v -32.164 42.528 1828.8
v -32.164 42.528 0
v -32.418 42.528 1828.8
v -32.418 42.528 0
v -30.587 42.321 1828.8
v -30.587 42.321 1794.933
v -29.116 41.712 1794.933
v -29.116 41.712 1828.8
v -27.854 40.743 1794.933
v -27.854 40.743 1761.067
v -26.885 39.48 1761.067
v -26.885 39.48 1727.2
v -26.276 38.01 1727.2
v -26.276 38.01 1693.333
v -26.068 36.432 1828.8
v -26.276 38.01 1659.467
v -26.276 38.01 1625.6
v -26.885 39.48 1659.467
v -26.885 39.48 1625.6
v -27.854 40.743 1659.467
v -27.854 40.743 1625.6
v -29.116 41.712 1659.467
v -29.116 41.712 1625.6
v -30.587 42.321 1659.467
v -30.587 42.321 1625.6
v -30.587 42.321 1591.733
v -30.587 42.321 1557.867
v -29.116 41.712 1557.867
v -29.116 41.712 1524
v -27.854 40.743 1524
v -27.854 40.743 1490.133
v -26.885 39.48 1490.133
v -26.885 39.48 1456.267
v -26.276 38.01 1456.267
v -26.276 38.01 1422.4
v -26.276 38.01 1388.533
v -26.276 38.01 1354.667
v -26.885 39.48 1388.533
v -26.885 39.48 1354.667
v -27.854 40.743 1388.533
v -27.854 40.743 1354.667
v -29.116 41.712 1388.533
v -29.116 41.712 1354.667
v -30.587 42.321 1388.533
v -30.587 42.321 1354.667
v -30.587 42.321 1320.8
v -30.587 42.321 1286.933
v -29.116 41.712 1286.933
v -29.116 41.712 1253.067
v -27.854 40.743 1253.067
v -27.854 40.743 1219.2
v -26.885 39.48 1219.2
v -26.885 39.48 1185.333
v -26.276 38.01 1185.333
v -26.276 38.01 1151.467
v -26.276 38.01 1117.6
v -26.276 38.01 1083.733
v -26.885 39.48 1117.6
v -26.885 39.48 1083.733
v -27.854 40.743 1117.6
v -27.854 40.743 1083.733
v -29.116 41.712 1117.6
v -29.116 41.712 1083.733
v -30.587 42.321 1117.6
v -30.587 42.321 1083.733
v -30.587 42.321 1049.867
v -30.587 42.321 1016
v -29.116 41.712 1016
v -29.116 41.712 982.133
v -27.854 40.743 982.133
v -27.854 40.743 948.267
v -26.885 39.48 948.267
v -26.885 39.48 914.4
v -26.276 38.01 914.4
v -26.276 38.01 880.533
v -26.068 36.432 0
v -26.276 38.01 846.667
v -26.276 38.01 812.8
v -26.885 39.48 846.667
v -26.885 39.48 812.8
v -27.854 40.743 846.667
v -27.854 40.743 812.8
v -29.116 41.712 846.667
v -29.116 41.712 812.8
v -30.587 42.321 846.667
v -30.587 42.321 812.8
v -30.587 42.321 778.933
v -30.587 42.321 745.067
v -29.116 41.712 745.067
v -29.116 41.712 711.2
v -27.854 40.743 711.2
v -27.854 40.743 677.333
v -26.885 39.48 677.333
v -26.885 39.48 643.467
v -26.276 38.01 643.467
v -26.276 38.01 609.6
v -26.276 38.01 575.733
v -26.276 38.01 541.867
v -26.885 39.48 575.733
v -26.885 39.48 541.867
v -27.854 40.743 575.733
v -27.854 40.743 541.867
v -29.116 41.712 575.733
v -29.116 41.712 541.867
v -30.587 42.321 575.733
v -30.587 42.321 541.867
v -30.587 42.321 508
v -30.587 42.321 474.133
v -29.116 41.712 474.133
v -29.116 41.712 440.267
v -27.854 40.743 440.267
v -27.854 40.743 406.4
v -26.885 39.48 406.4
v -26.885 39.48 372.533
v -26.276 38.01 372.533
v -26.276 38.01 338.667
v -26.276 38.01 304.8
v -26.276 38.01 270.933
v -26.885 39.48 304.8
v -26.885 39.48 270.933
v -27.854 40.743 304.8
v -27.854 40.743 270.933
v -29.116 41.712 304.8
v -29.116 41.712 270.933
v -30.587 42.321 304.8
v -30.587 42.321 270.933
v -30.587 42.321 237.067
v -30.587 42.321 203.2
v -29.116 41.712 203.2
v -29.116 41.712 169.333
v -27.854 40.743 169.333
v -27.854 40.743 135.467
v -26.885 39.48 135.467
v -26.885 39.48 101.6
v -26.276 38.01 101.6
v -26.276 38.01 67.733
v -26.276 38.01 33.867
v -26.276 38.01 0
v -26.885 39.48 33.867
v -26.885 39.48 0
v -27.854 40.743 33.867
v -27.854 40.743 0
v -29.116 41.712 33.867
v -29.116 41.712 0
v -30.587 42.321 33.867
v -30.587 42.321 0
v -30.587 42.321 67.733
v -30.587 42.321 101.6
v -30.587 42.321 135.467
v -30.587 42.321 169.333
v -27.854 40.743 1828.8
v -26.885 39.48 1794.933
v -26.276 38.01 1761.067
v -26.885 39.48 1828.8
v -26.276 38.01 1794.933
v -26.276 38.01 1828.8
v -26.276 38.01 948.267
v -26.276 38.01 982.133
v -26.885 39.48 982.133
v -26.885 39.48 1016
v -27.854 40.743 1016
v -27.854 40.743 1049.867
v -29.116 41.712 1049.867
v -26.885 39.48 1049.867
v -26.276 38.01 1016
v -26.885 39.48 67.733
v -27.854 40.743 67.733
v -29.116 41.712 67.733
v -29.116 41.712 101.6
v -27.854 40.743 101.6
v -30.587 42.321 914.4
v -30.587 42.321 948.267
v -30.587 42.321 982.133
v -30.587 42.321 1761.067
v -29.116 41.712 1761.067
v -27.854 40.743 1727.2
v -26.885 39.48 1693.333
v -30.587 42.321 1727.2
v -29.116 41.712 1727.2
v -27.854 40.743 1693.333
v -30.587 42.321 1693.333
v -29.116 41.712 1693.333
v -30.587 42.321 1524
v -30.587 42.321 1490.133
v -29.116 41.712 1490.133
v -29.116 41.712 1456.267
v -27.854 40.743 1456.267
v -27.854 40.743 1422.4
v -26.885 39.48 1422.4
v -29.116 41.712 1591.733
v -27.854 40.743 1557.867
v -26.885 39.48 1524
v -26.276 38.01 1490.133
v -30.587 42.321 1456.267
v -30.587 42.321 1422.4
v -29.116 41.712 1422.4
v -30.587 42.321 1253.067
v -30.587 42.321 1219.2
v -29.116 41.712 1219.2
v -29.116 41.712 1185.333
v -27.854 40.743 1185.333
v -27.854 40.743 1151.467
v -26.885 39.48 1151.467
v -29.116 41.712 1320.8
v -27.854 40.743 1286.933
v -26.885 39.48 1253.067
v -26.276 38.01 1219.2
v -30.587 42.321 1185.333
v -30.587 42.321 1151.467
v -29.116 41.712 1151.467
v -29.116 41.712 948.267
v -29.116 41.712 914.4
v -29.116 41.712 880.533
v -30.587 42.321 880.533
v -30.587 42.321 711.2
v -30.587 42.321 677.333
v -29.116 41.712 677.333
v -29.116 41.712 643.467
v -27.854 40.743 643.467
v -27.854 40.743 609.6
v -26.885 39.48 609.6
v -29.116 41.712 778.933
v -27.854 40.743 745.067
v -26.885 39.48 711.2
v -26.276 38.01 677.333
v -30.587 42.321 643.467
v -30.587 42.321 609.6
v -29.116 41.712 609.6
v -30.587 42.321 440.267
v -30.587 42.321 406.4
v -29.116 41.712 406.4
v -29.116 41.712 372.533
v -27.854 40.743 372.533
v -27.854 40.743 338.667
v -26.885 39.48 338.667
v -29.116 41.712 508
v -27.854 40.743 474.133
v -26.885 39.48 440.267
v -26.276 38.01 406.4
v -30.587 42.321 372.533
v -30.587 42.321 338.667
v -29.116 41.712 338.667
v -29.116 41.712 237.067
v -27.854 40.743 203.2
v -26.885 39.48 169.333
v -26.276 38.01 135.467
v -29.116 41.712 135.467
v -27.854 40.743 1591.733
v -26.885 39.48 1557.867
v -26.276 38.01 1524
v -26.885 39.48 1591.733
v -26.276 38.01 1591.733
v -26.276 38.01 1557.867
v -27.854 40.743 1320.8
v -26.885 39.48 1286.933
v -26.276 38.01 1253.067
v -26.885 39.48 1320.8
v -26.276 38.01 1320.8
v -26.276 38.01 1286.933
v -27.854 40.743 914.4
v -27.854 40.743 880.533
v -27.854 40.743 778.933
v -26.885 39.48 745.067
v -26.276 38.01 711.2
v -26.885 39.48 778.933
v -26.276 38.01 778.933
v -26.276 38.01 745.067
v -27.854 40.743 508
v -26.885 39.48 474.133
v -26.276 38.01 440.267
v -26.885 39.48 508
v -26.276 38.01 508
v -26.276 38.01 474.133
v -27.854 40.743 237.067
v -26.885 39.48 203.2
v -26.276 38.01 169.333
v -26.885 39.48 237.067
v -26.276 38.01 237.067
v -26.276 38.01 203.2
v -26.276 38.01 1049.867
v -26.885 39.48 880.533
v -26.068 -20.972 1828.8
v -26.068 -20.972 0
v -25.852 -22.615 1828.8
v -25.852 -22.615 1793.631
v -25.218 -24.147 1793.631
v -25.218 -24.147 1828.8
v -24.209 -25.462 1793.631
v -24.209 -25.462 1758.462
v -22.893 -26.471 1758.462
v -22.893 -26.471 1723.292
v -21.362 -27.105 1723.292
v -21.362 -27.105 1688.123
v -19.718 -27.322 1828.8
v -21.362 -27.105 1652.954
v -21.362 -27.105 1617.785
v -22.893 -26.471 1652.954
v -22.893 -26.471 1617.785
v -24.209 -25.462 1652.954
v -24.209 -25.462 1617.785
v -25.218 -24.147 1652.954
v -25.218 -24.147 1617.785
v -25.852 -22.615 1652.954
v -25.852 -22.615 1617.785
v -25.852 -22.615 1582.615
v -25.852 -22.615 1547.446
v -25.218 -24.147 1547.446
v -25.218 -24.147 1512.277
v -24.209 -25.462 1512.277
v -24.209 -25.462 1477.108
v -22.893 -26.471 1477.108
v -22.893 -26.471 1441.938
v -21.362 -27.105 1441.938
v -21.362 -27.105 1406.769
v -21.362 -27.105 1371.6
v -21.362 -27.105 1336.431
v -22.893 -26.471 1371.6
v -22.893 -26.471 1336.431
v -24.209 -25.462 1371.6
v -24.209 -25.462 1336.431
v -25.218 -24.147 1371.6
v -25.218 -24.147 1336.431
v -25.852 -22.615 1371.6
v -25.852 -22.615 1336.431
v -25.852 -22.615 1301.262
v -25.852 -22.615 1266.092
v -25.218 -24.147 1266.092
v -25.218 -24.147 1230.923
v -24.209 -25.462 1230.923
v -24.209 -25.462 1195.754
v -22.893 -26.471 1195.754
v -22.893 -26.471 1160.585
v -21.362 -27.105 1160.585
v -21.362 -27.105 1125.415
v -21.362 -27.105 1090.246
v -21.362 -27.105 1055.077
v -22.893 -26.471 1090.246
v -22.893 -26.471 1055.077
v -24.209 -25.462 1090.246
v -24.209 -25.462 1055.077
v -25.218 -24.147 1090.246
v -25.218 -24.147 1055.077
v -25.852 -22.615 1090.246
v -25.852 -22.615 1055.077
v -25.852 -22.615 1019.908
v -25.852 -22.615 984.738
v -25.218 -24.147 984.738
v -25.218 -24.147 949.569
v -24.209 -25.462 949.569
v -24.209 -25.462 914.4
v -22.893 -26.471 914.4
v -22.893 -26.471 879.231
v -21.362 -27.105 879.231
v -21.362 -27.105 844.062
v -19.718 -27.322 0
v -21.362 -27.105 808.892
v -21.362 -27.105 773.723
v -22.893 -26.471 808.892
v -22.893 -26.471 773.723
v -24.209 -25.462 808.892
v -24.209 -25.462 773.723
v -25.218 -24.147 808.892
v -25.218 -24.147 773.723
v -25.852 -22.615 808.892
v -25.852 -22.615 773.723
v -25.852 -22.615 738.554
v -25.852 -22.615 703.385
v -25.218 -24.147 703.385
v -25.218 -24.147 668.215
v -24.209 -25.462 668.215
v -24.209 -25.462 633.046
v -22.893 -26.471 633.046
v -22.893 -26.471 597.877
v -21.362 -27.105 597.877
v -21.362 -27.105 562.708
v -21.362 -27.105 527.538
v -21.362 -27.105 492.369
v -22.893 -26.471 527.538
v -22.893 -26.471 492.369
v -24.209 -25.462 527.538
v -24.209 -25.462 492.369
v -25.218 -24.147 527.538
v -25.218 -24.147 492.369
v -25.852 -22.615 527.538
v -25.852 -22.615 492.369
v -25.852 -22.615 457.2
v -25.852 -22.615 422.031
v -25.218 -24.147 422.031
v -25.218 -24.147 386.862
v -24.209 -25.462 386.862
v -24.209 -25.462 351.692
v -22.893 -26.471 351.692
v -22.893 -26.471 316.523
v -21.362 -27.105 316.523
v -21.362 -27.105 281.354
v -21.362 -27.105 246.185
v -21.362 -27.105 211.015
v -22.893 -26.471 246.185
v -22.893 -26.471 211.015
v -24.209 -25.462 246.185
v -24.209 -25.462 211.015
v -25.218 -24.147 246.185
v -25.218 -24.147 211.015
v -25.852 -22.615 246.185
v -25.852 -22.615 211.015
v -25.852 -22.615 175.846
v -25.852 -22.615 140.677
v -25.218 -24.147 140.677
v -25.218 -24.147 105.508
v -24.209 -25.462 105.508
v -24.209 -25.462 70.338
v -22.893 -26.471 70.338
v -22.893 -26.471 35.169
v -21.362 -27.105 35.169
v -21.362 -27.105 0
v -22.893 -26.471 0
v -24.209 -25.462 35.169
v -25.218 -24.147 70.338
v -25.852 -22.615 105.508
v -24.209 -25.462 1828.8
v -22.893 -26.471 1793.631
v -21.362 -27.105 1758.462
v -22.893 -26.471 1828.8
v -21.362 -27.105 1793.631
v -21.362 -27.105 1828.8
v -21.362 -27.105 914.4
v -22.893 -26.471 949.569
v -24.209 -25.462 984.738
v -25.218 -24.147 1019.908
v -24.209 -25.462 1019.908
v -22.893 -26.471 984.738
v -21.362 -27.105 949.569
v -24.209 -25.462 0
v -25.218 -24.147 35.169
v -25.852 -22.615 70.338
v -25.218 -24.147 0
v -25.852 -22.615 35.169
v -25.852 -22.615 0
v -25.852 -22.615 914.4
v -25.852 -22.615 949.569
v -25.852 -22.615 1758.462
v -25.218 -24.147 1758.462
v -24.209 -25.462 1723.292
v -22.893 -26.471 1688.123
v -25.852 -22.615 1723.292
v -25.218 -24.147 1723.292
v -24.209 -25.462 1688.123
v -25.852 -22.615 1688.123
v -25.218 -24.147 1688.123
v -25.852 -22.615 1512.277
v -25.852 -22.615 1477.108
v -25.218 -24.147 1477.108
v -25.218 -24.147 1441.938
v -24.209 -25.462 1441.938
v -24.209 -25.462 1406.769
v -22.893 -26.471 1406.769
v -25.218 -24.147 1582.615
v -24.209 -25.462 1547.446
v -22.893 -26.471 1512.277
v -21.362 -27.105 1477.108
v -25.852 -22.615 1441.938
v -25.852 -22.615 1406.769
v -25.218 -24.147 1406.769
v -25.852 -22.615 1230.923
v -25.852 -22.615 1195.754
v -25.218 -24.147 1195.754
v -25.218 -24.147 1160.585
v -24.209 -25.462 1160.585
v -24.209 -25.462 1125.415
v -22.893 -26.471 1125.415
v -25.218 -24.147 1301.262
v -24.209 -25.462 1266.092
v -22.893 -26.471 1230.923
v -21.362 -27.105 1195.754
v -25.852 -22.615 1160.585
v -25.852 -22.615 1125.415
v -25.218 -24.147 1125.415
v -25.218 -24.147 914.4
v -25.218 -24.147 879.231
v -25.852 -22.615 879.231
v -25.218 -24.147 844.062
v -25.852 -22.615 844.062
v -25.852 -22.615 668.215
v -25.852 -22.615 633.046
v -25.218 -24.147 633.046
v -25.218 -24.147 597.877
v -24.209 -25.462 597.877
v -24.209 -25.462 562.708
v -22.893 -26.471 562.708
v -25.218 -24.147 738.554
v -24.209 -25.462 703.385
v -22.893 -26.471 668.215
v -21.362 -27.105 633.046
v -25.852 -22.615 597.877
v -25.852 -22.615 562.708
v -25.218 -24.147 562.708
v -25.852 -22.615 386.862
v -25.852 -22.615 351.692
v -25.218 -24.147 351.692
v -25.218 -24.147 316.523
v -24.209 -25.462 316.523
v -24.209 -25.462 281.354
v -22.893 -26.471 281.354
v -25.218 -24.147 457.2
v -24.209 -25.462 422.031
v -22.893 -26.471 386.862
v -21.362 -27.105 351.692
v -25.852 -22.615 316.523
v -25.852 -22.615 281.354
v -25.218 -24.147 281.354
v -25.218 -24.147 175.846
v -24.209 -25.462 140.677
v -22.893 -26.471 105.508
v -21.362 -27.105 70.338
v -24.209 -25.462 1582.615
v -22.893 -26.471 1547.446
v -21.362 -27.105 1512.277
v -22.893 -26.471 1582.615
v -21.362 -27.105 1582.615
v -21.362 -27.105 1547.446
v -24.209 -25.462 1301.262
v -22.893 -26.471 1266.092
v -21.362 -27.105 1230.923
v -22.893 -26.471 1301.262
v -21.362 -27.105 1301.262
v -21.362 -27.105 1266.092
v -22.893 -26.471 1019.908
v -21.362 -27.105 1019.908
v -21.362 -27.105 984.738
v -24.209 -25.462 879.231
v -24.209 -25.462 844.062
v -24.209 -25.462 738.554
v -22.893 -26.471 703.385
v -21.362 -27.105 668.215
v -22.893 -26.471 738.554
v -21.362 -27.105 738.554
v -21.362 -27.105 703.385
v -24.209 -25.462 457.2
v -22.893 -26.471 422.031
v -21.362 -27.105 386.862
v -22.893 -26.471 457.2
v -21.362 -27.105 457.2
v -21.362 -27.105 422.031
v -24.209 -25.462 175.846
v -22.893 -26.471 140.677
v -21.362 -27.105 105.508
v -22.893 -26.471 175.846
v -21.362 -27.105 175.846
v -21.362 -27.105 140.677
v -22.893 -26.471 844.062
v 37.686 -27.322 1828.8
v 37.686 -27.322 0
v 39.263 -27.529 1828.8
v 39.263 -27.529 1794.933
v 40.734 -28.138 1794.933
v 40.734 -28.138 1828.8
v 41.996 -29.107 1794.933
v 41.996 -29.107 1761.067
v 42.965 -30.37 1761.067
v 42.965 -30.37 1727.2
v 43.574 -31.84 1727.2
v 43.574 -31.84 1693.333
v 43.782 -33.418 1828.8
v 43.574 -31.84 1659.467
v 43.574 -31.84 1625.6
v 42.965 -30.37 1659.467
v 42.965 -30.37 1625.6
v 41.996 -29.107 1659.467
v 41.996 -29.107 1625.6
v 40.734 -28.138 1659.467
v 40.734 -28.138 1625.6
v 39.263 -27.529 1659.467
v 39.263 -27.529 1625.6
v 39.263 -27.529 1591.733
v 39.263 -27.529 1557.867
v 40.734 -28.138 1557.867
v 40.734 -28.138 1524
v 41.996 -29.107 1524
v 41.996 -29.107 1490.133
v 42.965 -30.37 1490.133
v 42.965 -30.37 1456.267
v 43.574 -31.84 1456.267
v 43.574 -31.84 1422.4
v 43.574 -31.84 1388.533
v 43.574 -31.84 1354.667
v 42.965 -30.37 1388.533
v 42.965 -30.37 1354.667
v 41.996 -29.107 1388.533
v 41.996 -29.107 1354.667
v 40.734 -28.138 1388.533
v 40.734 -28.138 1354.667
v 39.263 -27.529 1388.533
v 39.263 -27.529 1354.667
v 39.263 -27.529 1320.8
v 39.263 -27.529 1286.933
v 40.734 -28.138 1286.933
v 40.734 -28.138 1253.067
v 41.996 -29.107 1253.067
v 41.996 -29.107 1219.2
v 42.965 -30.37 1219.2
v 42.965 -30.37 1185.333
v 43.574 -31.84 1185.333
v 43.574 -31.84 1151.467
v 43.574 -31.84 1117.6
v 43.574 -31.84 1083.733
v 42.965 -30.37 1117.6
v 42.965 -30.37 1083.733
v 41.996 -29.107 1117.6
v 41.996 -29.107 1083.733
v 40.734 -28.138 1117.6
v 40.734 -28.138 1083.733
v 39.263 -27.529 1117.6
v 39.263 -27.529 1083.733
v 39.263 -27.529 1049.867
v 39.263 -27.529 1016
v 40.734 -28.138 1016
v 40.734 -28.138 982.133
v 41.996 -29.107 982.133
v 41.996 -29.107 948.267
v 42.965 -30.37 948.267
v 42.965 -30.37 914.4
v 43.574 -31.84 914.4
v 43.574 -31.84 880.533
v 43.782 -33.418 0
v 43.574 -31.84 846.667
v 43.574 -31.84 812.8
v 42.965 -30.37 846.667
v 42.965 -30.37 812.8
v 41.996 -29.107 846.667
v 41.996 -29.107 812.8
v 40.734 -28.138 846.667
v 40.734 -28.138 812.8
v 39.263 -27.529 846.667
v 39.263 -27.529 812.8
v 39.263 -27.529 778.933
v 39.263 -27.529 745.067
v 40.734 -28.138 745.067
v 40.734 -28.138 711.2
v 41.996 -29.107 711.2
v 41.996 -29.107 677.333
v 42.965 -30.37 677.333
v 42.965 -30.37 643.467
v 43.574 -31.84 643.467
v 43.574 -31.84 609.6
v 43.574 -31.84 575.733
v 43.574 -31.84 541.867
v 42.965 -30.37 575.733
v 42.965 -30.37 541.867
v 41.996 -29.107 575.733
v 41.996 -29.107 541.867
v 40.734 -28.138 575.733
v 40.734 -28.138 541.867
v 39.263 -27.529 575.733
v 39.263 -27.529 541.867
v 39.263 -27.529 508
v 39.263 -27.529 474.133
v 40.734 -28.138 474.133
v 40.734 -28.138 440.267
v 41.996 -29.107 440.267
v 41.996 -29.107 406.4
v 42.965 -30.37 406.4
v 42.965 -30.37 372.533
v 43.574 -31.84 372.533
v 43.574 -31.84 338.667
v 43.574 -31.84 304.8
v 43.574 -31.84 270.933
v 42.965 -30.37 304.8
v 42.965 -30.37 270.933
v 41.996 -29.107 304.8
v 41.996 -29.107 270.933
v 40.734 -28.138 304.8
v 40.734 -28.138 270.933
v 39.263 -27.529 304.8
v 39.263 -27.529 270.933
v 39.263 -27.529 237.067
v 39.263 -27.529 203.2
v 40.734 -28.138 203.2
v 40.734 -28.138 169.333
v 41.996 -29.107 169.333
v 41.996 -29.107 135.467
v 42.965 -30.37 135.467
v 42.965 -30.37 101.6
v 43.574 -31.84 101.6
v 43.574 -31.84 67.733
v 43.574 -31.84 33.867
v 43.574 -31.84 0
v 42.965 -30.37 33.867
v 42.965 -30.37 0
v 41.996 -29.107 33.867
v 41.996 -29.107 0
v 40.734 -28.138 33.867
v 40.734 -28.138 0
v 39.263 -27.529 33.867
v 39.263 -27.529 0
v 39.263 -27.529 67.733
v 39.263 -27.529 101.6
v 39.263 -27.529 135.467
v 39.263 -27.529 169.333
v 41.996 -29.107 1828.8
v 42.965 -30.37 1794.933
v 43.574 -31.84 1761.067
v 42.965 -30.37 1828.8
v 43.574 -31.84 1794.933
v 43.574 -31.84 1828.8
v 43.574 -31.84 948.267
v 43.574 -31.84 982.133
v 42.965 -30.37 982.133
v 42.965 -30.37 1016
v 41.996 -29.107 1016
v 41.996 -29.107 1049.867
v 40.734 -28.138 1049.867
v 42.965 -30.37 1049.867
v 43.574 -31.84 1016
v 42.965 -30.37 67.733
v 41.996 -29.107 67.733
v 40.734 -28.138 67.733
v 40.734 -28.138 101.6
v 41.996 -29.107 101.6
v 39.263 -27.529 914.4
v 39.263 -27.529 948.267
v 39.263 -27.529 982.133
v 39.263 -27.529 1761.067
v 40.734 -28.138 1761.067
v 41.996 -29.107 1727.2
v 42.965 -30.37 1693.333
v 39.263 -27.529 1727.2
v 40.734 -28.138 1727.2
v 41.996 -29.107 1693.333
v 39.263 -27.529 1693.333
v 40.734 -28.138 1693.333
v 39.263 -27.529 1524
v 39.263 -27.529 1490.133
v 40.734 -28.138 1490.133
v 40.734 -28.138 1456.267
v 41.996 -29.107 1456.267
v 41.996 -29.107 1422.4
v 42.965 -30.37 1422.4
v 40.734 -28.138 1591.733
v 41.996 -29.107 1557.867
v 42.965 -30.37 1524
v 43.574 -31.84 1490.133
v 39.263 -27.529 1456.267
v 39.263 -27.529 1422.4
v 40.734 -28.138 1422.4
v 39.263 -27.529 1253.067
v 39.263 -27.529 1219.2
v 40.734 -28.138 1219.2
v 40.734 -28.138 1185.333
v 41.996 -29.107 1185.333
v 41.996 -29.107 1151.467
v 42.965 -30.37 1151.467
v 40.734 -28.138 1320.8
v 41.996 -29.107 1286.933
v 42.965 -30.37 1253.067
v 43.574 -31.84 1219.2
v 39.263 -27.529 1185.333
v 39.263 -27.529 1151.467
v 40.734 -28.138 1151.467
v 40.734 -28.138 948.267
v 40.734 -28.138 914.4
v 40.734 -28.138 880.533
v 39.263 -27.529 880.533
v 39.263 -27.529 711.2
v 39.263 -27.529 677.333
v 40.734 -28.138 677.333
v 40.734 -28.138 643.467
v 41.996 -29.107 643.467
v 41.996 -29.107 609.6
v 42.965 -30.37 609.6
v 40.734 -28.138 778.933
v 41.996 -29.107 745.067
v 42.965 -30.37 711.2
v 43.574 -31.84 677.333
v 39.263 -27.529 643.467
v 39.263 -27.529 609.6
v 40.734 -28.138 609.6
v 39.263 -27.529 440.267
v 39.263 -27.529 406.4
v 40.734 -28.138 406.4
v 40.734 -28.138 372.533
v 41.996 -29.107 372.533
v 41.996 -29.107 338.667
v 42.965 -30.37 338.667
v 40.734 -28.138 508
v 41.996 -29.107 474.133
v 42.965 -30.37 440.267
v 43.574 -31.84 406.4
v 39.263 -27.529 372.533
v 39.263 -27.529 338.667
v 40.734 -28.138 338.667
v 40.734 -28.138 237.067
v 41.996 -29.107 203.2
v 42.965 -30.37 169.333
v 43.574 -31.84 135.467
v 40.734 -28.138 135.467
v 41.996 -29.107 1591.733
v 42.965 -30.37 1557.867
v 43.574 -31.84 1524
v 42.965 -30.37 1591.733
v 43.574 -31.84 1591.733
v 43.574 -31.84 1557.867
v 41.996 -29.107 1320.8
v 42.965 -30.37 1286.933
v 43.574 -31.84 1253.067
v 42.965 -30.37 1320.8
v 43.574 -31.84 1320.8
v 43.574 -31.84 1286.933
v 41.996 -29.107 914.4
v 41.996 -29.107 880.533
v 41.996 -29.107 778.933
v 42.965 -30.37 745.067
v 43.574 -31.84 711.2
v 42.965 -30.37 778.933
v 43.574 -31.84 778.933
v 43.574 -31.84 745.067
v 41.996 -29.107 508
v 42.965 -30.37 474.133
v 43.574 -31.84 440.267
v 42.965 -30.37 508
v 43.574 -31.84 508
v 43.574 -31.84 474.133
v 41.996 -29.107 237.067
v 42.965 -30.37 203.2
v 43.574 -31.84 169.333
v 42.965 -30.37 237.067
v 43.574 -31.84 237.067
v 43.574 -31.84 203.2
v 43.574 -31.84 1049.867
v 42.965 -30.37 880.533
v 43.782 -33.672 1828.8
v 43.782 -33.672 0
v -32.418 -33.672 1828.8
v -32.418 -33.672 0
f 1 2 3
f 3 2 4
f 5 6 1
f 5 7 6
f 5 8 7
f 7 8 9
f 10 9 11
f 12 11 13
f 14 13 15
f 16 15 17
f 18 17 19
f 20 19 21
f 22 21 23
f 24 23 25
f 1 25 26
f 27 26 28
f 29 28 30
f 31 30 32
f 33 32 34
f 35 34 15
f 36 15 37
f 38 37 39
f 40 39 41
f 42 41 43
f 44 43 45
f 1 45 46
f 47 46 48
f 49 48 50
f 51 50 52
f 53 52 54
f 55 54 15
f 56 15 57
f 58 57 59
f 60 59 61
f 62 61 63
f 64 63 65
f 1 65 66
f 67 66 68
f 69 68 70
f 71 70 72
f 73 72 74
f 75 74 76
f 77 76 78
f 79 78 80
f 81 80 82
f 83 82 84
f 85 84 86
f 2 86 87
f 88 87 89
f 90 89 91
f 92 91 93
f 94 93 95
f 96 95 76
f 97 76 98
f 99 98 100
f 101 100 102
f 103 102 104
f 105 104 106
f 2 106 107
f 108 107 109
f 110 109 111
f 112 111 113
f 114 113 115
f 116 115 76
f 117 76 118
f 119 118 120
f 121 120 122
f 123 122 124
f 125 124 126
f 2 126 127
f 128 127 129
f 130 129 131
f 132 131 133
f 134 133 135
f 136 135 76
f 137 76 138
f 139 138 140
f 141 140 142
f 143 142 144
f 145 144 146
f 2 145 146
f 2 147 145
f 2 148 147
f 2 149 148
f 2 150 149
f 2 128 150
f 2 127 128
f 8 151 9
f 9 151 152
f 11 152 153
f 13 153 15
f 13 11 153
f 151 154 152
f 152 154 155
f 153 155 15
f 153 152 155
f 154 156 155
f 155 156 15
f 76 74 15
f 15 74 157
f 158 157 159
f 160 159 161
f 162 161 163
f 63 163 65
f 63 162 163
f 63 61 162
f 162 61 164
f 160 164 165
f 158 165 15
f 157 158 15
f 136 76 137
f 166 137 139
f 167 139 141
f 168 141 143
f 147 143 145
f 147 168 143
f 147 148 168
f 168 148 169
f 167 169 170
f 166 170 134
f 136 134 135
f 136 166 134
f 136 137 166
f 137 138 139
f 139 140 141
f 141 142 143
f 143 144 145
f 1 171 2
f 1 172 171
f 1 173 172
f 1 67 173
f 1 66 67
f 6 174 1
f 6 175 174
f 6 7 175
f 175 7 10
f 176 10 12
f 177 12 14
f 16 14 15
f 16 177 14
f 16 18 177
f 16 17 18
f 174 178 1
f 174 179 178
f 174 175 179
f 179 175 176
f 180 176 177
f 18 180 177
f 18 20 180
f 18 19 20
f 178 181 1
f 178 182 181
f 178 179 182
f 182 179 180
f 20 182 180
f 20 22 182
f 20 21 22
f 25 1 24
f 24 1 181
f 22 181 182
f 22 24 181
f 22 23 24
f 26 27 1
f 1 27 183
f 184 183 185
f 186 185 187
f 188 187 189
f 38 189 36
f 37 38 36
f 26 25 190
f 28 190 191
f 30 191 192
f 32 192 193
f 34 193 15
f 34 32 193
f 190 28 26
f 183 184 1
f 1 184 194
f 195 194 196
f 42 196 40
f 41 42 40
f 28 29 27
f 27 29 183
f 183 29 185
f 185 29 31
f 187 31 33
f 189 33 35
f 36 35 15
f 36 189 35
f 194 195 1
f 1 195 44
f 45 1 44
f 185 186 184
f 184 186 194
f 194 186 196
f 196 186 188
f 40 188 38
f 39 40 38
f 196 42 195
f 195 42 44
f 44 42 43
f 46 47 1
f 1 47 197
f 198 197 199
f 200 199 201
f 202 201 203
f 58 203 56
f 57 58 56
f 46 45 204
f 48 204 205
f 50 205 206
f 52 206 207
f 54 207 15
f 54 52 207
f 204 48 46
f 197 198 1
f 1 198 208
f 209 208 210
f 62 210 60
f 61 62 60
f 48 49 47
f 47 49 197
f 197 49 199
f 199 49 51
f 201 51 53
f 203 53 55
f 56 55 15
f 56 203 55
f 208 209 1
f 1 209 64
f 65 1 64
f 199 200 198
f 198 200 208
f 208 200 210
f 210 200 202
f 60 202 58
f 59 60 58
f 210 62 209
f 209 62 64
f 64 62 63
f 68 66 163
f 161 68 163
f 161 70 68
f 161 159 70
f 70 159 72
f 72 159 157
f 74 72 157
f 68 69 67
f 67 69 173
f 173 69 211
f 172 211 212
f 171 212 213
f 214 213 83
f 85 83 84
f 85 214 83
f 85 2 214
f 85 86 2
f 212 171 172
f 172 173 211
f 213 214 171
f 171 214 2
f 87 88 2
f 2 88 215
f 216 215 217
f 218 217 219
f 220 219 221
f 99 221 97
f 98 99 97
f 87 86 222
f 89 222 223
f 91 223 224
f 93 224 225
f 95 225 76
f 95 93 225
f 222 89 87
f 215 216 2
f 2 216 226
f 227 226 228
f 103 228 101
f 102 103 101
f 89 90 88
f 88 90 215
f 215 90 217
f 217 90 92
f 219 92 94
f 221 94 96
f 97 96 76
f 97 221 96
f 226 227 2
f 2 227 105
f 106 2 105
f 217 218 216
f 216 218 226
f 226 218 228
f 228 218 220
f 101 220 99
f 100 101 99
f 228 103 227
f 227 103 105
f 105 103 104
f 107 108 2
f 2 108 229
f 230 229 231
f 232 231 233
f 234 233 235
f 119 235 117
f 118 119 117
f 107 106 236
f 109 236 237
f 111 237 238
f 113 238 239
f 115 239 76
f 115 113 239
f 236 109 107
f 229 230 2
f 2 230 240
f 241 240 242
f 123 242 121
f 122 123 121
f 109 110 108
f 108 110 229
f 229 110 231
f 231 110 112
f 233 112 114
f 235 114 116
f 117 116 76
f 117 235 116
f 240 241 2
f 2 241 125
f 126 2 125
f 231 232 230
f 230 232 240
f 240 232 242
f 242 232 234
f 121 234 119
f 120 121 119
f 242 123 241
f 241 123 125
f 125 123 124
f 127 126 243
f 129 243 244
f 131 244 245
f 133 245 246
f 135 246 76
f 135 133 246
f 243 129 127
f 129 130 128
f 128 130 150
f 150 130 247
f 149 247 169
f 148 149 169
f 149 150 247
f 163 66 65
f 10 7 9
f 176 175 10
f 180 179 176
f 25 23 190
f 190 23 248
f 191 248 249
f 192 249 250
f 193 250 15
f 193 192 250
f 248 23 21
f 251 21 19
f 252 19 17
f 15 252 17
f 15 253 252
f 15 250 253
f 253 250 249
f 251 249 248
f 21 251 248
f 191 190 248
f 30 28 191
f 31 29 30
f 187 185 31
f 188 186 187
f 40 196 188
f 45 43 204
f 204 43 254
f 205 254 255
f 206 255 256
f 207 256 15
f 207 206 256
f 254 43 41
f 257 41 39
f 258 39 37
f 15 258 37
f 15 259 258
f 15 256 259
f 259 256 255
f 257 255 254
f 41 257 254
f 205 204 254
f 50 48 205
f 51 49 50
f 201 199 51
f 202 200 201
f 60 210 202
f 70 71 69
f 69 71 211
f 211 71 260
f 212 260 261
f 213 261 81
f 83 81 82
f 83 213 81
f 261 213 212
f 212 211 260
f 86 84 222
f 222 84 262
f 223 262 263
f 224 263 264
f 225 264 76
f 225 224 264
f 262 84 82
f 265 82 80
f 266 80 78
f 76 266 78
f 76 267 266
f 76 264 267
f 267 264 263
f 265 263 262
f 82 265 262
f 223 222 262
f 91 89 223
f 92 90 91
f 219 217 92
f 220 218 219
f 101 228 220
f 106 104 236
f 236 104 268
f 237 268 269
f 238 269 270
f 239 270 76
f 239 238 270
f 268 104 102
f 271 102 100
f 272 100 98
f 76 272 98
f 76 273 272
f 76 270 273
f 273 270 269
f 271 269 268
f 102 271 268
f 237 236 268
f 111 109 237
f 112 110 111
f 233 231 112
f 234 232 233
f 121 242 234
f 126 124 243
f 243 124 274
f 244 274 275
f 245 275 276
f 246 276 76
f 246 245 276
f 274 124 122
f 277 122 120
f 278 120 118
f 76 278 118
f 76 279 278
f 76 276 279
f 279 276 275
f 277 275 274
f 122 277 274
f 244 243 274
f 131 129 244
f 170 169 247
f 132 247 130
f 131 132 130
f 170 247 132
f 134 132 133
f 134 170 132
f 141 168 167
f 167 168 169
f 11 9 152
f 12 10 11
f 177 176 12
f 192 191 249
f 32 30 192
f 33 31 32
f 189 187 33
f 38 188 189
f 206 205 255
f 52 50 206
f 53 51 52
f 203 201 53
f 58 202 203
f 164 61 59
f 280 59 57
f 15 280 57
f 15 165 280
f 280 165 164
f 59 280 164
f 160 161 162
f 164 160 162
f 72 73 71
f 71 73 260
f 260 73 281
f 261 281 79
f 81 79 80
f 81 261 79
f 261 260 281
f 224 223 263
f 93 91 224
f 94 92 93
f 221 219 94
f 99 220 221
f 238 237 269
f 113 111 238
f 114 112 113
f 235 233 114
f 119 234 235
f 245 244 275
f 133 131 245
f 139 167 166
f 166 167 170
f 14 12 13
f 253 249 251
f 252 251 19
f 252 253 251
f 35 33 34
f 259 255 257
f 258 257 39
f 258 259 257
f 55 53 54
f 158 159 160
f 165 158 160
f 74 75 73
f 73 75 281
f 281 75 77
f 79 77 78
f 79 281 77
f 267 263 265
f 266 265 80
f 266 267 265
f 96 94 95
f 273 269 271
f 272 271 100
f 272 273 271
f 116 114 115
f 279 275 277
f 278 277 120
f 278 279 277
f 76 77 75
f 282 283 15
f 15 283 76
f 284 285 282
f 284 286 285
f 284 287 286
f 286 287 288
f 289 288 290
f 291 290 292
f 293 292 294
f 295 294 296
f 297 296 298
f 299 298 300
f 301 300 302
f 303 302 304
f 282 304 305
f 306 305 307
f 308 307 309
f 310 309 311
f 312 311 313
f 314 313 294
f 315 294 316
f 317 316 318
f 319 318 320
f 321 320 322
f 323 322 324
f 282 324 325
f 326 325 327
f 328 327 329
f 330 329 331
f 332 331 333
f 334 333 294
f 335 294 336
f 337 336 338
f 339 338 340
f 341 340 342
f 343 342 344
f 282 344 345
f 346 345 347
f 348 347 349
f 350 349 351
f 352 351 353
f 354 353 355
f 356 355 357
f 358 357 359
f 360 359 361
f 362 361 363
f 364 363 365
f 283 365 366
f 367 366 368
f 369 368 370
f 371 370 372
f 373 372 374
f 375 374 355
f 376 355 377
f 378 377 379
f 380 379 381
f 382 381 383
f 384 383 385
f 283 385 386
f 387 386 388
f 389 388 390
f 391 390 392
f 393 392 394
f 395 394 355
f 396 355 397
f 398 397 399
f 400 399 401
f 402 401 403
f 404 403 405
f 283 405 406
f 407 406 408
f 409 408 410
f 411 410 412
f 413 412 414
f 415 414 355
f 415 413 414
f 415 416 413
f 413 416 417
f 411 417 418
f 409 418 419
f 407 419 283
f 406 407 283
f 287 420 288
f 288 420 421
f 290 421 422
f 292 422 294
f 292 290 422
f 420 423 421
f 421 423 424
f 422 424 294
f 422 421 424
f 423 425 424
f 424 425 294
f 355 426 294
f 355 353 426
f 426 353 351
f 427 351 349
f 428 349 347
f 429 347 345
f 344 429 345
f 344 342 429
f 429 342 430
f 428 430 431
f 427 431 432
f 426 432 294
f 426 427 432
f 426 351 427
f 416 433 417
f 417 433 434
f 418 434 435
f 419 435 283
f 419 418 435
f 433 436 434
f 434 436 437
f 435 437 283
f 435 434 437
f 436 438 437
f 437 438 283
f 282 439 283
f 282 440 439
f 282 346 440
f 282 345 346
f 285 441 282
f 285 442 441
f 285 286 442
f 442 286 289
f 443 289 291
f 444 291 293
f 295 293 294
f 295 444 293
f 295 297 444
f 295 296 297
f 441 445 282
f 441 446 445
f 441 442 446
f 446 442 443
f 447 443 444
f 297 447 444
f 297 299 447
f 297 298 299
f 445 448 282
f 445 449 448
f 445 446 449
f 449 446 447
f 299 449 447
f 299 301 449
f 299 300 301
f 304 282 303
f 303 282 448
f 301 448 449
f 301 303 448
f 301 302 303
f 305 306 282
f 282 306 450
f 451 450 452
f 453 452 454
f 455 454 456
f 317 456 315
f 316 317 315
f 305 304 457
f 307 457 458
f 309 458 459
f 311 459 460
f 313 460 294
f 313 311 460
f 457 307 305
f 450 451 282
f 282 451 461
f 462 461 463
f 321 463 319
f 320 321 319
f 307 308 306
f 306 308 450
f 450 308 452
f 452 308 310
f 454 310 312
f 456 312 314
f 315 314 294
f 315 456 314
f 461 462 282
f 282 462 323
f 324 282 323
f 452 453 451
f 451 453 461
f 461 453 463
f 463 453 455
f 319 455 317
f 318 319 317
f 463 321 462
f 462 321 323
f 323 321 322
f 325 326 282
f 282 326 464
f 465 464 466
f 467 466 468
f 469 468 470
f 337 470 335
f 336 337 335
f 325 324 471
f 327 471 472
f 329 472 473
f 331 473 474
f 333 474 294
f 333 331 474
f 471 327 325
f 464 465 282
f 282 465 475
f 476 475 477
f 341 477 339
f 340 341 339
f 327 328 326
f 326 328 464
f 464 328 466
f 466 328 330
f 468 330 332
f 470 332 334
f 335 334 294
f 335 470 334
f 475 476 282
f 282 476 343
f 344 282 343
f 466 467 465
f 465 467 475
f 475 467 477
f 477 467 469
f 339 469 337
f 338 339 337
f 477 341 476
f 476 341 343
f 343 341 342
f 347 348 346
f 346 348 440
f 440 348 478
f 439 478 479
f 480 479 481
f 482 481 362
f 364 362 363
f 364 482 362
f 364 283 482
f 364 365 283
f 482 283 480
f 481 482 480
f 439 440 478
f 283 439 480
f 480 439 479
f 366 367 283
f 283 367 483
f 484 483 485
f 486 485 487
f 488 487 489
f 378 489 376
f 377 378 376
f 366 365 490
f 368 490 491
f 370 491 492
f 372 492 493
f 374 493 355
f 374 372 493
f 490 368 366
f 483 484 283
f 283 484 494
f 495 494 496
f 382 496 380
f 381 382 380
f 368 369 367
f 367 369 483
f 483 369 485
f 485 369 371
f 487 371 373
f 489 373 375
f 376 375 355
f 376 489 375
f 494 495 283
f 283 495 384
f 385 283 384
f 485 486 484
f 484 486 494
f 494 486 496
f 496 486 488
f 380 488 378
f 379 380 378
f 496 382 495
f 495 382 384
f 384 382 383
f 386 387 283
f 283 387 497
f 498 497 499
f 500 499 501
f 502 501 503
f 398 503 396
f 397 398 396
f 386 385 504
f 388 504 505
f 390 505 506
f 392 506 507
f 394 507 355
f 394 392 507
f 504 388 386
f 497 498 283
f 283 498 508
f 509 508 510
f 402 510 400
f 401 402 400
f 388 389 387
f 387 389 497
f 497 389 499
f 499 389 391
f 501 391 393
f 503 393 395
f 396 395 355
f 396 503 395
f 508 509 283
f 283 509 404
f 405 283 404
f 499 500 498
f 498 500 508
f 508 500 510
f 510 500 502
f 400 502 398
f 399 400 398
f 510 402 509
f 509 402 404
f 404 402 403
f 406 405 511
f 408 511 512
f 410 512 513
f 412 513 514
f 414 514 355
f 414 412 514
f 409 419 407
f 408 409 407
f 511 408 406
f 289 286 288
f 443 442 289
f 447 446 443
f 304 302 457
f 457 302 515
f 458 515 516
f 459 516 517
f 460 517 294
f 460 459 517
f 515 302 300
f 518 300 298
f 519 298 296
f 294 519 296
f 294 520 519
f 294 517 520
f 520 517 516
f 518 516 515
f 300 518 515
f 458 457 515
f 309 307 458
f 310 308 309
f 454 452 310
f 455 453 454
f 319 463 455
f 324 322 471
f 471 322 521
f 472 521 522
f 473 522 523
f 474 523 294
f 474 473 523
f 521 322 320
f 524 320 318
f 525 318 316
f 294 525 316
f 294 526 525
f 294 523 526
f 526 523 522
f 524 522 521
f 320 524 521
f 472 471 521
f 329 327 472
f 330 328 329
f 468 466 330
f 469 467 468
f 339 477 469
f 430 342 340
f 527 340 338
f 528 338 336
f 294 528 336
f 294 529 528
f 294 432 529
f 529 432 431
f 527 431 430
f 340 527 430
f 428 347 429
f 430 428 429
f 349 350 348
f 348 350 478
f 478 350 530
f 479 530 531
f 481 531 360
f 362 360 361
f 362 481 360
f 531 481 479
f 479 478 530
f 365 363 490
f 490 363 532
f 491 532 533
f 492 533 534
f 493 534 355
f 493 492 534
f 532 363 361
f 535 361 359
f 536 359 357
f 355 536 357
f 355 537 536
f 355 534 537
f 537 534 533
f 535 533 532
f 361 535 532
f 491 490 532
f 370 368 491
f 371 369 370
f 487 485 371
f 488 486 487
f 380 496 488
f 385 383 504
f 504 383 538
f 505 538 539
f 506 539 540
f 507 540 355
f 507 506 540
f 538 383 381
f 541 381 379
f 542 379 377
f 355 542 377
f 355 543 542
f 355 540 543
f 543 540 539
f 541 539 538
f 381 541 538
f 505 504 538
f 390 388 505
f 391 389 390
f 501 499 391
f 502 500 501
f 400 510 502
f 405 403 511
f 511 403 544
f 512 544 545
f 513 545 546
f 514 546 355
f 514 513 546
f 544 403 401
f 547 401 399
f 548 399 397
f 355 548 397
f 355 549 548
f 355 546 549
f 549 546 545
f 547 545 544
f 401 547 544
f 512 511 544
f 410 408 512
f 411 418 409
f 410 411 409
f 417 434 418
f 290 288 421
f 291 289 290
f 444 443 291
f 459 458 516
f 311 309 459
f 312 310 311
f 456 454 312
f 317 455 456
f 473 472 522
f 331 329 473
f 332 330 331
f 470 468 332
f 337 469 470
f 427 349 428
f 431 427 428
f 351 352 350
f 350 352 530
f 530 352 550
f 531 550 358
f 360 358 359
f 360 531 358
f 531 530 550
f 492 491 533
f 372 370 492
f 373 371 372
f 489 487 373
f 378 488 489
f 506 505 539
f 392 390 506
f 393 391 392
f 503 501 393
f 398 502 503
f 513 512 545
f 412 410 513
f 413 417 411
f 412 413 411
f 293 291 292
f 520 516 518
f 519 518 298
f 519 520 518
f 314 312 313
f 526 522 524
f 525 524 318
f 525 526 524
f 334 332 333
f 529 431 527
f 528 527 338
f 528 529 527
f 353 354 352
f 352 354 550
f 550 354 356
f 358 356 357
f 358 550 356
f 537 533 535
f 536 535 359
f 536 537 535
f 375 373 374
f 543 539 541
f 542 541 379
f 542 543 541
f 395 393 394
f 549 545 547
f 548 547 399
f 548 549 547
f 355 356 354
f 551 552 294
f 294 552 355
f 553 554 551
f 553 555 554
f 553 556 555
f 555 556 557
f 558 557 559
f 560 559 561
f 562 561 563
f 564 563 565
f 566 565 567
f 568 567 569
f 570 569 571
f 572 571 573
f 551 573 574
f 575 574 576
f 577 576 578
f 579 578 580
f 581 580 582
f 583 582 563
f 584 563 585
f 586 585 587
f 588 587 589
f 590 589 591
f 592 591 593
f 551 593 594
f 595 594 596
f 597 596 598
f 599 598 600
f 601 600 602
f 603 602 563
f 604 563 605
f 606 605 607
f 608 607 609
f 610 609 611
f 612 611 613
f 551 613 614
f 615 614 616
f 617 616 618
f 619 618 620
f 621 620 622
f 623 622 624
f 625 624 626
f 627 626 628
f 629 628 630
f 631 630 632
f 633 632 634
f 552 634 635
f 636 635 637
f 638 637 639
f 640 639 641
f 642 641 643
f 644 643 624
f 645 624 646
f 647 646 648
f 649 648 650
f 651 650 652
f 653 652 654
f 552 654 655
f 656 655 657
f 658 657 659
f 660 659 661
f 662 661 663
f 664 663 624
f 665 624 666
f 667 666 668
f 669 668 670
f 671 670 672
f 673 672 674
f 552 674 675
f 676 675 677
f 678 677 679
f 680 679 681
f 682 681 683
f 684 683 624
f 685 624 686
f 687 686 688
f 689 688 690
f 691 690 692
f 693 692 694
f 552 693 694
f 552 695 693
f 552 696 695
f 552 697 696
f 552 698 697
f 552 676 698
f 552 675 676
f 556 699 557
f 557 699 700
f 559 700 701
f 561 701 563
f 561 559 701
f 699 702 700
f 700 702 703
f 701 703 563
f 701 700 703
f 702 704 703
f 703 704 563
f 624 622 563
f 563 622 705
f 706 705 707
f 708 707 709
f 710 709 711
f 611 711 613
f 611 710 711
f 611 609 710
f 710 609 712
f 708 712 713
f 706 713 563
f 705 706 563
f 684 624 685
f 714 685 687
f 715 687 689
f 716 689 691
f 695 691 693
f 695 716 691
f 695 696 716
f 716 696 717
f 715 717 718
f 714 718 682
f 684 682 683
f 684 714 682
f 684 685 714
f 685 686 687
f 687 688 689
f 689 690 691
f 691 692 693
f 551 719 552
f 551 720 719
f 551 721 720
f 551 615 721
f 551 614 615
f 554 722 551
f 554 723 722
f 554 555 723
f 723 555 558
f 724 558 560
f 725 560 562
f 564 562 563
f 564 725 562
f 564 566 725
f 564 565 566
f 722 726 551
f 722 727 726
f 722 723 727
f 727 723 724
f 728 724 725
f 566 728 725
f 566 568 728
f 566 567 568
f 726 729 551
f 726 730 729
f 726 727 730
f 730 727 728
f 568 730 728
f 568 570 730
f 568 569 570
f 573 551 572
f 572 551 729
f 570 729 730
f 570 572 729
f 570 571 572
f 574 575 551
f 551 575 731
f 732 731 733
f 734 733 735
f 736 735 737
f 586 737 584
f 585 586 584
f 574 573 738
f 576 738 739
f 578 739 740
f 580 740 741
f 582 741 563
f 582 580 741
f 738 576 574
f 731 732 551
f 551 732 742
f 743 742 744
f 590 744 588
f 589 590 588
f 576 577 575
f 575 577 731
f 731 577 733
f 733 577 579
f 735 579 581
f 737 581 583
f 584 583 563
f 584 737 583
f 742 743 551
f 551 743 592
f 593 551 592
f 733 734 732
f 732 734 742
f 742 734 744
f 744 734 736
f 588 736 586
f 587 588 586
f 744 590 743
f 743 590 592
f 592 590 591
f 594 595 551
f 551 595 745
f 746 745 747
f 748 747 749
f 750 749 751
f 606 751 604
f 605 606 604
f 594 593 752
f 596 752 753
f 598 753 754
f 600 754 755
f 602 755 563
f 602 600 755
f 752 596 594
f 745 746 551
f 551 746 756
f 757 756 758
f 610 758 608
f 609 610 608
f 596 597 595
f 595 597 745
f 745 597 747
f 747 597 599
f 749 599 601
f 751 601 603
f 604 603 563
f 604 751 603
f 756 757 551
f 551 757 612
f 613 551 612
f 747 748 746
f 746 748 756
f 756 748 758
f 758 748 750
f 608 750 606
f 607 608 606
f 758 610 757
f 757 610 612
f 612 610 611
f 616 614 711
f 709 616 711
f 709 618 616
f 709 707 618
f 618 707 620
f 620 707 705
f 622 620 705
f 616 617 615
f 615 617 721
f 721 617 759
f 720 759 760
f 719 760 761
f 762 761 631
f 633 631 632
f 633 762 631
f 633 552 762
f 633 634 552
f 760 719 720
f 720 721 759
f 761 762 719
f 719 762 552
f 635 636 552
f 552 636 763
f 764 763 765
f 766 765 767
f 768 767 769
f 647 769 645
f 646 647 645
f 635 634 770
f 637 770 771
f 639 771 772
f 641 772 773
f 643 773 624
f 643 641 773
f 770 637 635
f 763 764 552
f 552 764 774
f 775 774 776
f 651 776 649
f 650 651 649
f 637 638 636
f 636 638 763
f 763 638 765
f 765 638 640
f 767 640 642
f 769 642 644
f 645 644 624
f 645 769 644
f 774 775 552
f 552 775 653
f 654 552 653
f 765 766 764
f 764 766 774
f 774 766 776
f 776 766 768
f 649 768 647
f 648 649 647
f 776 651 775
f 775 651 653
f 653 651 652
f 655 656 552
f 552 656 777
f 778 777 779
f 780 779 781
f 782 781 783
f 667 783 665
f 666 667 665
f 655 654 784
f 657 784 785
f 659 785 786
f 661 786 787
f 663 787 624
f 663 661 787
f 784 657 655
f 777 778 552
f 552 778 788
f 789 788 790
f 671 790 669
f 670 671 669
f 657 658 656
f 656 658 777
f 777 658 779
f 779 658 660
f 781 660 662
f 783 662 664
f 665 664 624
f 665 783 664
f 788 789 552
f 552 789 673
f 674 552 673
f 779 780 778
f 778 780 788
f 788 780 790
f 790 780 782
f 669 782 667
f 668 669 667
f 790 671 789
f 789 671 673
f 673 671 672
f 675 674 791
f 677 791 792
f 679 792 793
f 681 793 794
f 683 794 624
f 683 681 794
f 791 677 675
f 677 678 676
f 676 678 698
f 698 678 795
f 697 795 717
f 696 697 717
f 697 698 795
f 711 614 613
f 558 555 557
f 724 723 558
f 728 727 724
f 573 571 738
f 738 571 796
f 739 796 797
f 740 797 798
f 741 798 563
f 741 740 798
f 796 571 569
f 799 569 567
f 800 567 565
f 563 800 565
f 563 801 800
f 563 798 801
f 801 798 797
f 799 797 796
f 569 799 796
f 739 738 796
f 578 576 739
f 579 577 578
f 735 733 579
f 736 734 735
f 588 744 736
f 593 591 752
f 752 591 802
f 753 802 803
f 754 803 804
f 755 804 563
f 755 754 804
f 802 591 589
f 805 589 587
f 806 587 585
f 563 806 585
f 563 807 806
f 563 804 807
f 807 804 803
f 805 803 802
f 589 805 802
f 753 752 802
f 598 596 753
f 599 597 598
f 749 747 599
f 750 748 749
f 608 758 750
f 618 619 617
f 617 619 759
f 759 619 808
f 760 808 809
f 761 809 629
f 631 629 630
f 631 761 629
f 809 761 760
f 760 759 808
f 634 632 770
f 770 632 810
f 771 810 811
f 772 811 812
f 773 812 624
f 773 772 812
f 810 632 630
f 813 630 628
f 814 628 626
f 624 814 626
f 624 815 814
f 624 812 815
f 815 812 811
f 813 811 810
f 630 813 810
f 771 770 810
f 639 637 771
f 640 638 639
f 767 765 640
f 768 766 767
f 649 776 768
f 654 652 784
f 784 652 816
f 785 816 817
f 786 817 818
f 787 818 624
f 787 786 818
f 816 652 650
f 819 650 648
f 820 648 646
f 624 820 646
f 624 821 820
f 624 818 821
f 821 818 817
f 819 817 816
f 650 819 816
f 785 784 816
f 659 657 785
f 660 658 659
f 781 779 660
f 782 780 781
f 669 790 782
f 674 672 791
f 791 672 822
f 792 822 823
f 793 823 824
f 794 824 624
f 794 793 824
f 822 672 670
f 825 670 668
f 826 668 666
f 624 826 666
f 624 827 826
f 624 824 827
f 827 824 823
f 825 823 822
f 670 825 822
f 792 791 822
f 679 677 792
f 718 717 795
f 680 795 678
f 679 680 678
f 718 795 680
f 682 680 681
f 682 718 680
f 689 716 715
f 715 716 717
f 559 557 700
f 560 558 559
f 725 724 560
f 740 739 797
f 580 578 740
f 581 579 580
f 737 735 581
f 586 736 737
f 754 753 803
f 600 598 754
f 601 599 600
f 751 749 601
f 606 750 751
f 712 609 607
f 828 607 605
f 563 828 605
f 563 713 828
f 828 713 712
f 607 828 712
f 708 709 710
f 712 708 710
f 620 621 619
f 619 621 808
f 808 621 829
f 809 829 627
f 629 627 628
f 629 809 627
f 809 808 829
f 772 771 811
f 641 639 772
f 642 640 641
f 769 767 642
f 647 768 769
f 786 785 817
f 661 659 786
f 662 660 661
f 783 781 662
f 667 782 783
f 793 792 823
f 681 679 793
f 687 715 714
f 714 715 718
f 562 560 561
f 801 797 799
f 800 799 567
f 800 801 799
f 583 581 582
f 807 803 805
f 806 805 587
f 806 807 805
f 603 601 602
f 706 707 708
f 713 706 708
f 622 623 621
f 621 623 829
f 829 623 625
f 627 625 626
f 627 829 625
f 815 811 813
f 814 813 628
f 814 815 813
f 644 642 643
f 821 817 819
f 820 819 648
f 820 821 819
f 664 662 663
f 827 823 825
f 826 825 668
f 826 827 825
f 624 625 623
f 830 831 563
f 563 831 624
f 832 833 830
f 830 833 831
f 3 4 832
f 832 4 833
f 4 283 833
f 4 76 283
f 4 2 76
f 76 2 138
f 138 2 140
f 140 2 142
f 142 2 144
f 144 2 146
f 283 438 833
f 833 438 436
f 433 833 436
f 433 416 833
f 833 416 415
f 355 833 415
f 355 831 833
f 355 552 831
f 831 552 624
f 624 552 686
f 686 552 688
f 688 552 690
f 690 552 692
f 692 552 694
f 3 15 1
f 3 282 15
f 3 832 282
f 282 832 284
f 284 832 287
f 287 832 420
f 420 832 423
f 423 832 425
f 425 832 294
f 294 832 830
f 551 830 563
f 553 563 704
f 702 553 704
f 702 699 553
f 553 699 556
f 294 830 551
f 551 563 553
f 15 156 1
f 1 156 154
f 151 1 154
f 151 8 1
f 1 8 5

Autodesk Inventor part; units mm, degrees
ref_plane "YZ Plane" through (0, 0, 0) normal (1, 0, 0) x (0, 1, 0)
ref_plane "XZ Plane" through (0, 0, 0) normal (0, 1, 0) x (-1, 0, 0)
ref_plane "XY Plane" through (0, 0, 0) normal (0, 0, 1) x (1, 0, 0)
sketch "Sketch1" plane through (0, 0, 0) normal (0, 0, 1) x (1, 0, 0)
  line L0 (-32.4184, 42.5283) -> (-32.4184, -33.6717)
  line L1 (-32.4184, -33.6717) -> (43.7816, -33.6717)
  line L2 (43.7816, -33.6717) -> (43.7816, -33.4177)
  line L3 (37.6856, -27.3217) -> (-19.7184, -27.3217)
  line L4 (-26.0684, -20.9717) -> (-26.0684, 36.4323)
  line L5 (-32.1644, 42.5283) -> (-32.4184, 42.5283)
  arc A0 (-26.0684, 36.4323) -> (-32.1644, 42.5283) centre (-32.1644, 36.4323) ccw
  arc A1 (43.7816, -33.4177) -> (37.6856, -27.3217) centre (37.6856, -33.4177) ccw
  arc A2 (-26.0684, -20.9717) -> (-19.7184, -27.3217) centre (-19.7184, -20.9717) ccw
  dimension "d0" = 76.2
  dimension "d1" = 6.096
  dimension "d2" = 6.35
  dimension "d3" = 6.35
extrude "Extrusion1" add sketch "Sketch1" along normal blind 1828.8
properties part number "FE-00005-01"
